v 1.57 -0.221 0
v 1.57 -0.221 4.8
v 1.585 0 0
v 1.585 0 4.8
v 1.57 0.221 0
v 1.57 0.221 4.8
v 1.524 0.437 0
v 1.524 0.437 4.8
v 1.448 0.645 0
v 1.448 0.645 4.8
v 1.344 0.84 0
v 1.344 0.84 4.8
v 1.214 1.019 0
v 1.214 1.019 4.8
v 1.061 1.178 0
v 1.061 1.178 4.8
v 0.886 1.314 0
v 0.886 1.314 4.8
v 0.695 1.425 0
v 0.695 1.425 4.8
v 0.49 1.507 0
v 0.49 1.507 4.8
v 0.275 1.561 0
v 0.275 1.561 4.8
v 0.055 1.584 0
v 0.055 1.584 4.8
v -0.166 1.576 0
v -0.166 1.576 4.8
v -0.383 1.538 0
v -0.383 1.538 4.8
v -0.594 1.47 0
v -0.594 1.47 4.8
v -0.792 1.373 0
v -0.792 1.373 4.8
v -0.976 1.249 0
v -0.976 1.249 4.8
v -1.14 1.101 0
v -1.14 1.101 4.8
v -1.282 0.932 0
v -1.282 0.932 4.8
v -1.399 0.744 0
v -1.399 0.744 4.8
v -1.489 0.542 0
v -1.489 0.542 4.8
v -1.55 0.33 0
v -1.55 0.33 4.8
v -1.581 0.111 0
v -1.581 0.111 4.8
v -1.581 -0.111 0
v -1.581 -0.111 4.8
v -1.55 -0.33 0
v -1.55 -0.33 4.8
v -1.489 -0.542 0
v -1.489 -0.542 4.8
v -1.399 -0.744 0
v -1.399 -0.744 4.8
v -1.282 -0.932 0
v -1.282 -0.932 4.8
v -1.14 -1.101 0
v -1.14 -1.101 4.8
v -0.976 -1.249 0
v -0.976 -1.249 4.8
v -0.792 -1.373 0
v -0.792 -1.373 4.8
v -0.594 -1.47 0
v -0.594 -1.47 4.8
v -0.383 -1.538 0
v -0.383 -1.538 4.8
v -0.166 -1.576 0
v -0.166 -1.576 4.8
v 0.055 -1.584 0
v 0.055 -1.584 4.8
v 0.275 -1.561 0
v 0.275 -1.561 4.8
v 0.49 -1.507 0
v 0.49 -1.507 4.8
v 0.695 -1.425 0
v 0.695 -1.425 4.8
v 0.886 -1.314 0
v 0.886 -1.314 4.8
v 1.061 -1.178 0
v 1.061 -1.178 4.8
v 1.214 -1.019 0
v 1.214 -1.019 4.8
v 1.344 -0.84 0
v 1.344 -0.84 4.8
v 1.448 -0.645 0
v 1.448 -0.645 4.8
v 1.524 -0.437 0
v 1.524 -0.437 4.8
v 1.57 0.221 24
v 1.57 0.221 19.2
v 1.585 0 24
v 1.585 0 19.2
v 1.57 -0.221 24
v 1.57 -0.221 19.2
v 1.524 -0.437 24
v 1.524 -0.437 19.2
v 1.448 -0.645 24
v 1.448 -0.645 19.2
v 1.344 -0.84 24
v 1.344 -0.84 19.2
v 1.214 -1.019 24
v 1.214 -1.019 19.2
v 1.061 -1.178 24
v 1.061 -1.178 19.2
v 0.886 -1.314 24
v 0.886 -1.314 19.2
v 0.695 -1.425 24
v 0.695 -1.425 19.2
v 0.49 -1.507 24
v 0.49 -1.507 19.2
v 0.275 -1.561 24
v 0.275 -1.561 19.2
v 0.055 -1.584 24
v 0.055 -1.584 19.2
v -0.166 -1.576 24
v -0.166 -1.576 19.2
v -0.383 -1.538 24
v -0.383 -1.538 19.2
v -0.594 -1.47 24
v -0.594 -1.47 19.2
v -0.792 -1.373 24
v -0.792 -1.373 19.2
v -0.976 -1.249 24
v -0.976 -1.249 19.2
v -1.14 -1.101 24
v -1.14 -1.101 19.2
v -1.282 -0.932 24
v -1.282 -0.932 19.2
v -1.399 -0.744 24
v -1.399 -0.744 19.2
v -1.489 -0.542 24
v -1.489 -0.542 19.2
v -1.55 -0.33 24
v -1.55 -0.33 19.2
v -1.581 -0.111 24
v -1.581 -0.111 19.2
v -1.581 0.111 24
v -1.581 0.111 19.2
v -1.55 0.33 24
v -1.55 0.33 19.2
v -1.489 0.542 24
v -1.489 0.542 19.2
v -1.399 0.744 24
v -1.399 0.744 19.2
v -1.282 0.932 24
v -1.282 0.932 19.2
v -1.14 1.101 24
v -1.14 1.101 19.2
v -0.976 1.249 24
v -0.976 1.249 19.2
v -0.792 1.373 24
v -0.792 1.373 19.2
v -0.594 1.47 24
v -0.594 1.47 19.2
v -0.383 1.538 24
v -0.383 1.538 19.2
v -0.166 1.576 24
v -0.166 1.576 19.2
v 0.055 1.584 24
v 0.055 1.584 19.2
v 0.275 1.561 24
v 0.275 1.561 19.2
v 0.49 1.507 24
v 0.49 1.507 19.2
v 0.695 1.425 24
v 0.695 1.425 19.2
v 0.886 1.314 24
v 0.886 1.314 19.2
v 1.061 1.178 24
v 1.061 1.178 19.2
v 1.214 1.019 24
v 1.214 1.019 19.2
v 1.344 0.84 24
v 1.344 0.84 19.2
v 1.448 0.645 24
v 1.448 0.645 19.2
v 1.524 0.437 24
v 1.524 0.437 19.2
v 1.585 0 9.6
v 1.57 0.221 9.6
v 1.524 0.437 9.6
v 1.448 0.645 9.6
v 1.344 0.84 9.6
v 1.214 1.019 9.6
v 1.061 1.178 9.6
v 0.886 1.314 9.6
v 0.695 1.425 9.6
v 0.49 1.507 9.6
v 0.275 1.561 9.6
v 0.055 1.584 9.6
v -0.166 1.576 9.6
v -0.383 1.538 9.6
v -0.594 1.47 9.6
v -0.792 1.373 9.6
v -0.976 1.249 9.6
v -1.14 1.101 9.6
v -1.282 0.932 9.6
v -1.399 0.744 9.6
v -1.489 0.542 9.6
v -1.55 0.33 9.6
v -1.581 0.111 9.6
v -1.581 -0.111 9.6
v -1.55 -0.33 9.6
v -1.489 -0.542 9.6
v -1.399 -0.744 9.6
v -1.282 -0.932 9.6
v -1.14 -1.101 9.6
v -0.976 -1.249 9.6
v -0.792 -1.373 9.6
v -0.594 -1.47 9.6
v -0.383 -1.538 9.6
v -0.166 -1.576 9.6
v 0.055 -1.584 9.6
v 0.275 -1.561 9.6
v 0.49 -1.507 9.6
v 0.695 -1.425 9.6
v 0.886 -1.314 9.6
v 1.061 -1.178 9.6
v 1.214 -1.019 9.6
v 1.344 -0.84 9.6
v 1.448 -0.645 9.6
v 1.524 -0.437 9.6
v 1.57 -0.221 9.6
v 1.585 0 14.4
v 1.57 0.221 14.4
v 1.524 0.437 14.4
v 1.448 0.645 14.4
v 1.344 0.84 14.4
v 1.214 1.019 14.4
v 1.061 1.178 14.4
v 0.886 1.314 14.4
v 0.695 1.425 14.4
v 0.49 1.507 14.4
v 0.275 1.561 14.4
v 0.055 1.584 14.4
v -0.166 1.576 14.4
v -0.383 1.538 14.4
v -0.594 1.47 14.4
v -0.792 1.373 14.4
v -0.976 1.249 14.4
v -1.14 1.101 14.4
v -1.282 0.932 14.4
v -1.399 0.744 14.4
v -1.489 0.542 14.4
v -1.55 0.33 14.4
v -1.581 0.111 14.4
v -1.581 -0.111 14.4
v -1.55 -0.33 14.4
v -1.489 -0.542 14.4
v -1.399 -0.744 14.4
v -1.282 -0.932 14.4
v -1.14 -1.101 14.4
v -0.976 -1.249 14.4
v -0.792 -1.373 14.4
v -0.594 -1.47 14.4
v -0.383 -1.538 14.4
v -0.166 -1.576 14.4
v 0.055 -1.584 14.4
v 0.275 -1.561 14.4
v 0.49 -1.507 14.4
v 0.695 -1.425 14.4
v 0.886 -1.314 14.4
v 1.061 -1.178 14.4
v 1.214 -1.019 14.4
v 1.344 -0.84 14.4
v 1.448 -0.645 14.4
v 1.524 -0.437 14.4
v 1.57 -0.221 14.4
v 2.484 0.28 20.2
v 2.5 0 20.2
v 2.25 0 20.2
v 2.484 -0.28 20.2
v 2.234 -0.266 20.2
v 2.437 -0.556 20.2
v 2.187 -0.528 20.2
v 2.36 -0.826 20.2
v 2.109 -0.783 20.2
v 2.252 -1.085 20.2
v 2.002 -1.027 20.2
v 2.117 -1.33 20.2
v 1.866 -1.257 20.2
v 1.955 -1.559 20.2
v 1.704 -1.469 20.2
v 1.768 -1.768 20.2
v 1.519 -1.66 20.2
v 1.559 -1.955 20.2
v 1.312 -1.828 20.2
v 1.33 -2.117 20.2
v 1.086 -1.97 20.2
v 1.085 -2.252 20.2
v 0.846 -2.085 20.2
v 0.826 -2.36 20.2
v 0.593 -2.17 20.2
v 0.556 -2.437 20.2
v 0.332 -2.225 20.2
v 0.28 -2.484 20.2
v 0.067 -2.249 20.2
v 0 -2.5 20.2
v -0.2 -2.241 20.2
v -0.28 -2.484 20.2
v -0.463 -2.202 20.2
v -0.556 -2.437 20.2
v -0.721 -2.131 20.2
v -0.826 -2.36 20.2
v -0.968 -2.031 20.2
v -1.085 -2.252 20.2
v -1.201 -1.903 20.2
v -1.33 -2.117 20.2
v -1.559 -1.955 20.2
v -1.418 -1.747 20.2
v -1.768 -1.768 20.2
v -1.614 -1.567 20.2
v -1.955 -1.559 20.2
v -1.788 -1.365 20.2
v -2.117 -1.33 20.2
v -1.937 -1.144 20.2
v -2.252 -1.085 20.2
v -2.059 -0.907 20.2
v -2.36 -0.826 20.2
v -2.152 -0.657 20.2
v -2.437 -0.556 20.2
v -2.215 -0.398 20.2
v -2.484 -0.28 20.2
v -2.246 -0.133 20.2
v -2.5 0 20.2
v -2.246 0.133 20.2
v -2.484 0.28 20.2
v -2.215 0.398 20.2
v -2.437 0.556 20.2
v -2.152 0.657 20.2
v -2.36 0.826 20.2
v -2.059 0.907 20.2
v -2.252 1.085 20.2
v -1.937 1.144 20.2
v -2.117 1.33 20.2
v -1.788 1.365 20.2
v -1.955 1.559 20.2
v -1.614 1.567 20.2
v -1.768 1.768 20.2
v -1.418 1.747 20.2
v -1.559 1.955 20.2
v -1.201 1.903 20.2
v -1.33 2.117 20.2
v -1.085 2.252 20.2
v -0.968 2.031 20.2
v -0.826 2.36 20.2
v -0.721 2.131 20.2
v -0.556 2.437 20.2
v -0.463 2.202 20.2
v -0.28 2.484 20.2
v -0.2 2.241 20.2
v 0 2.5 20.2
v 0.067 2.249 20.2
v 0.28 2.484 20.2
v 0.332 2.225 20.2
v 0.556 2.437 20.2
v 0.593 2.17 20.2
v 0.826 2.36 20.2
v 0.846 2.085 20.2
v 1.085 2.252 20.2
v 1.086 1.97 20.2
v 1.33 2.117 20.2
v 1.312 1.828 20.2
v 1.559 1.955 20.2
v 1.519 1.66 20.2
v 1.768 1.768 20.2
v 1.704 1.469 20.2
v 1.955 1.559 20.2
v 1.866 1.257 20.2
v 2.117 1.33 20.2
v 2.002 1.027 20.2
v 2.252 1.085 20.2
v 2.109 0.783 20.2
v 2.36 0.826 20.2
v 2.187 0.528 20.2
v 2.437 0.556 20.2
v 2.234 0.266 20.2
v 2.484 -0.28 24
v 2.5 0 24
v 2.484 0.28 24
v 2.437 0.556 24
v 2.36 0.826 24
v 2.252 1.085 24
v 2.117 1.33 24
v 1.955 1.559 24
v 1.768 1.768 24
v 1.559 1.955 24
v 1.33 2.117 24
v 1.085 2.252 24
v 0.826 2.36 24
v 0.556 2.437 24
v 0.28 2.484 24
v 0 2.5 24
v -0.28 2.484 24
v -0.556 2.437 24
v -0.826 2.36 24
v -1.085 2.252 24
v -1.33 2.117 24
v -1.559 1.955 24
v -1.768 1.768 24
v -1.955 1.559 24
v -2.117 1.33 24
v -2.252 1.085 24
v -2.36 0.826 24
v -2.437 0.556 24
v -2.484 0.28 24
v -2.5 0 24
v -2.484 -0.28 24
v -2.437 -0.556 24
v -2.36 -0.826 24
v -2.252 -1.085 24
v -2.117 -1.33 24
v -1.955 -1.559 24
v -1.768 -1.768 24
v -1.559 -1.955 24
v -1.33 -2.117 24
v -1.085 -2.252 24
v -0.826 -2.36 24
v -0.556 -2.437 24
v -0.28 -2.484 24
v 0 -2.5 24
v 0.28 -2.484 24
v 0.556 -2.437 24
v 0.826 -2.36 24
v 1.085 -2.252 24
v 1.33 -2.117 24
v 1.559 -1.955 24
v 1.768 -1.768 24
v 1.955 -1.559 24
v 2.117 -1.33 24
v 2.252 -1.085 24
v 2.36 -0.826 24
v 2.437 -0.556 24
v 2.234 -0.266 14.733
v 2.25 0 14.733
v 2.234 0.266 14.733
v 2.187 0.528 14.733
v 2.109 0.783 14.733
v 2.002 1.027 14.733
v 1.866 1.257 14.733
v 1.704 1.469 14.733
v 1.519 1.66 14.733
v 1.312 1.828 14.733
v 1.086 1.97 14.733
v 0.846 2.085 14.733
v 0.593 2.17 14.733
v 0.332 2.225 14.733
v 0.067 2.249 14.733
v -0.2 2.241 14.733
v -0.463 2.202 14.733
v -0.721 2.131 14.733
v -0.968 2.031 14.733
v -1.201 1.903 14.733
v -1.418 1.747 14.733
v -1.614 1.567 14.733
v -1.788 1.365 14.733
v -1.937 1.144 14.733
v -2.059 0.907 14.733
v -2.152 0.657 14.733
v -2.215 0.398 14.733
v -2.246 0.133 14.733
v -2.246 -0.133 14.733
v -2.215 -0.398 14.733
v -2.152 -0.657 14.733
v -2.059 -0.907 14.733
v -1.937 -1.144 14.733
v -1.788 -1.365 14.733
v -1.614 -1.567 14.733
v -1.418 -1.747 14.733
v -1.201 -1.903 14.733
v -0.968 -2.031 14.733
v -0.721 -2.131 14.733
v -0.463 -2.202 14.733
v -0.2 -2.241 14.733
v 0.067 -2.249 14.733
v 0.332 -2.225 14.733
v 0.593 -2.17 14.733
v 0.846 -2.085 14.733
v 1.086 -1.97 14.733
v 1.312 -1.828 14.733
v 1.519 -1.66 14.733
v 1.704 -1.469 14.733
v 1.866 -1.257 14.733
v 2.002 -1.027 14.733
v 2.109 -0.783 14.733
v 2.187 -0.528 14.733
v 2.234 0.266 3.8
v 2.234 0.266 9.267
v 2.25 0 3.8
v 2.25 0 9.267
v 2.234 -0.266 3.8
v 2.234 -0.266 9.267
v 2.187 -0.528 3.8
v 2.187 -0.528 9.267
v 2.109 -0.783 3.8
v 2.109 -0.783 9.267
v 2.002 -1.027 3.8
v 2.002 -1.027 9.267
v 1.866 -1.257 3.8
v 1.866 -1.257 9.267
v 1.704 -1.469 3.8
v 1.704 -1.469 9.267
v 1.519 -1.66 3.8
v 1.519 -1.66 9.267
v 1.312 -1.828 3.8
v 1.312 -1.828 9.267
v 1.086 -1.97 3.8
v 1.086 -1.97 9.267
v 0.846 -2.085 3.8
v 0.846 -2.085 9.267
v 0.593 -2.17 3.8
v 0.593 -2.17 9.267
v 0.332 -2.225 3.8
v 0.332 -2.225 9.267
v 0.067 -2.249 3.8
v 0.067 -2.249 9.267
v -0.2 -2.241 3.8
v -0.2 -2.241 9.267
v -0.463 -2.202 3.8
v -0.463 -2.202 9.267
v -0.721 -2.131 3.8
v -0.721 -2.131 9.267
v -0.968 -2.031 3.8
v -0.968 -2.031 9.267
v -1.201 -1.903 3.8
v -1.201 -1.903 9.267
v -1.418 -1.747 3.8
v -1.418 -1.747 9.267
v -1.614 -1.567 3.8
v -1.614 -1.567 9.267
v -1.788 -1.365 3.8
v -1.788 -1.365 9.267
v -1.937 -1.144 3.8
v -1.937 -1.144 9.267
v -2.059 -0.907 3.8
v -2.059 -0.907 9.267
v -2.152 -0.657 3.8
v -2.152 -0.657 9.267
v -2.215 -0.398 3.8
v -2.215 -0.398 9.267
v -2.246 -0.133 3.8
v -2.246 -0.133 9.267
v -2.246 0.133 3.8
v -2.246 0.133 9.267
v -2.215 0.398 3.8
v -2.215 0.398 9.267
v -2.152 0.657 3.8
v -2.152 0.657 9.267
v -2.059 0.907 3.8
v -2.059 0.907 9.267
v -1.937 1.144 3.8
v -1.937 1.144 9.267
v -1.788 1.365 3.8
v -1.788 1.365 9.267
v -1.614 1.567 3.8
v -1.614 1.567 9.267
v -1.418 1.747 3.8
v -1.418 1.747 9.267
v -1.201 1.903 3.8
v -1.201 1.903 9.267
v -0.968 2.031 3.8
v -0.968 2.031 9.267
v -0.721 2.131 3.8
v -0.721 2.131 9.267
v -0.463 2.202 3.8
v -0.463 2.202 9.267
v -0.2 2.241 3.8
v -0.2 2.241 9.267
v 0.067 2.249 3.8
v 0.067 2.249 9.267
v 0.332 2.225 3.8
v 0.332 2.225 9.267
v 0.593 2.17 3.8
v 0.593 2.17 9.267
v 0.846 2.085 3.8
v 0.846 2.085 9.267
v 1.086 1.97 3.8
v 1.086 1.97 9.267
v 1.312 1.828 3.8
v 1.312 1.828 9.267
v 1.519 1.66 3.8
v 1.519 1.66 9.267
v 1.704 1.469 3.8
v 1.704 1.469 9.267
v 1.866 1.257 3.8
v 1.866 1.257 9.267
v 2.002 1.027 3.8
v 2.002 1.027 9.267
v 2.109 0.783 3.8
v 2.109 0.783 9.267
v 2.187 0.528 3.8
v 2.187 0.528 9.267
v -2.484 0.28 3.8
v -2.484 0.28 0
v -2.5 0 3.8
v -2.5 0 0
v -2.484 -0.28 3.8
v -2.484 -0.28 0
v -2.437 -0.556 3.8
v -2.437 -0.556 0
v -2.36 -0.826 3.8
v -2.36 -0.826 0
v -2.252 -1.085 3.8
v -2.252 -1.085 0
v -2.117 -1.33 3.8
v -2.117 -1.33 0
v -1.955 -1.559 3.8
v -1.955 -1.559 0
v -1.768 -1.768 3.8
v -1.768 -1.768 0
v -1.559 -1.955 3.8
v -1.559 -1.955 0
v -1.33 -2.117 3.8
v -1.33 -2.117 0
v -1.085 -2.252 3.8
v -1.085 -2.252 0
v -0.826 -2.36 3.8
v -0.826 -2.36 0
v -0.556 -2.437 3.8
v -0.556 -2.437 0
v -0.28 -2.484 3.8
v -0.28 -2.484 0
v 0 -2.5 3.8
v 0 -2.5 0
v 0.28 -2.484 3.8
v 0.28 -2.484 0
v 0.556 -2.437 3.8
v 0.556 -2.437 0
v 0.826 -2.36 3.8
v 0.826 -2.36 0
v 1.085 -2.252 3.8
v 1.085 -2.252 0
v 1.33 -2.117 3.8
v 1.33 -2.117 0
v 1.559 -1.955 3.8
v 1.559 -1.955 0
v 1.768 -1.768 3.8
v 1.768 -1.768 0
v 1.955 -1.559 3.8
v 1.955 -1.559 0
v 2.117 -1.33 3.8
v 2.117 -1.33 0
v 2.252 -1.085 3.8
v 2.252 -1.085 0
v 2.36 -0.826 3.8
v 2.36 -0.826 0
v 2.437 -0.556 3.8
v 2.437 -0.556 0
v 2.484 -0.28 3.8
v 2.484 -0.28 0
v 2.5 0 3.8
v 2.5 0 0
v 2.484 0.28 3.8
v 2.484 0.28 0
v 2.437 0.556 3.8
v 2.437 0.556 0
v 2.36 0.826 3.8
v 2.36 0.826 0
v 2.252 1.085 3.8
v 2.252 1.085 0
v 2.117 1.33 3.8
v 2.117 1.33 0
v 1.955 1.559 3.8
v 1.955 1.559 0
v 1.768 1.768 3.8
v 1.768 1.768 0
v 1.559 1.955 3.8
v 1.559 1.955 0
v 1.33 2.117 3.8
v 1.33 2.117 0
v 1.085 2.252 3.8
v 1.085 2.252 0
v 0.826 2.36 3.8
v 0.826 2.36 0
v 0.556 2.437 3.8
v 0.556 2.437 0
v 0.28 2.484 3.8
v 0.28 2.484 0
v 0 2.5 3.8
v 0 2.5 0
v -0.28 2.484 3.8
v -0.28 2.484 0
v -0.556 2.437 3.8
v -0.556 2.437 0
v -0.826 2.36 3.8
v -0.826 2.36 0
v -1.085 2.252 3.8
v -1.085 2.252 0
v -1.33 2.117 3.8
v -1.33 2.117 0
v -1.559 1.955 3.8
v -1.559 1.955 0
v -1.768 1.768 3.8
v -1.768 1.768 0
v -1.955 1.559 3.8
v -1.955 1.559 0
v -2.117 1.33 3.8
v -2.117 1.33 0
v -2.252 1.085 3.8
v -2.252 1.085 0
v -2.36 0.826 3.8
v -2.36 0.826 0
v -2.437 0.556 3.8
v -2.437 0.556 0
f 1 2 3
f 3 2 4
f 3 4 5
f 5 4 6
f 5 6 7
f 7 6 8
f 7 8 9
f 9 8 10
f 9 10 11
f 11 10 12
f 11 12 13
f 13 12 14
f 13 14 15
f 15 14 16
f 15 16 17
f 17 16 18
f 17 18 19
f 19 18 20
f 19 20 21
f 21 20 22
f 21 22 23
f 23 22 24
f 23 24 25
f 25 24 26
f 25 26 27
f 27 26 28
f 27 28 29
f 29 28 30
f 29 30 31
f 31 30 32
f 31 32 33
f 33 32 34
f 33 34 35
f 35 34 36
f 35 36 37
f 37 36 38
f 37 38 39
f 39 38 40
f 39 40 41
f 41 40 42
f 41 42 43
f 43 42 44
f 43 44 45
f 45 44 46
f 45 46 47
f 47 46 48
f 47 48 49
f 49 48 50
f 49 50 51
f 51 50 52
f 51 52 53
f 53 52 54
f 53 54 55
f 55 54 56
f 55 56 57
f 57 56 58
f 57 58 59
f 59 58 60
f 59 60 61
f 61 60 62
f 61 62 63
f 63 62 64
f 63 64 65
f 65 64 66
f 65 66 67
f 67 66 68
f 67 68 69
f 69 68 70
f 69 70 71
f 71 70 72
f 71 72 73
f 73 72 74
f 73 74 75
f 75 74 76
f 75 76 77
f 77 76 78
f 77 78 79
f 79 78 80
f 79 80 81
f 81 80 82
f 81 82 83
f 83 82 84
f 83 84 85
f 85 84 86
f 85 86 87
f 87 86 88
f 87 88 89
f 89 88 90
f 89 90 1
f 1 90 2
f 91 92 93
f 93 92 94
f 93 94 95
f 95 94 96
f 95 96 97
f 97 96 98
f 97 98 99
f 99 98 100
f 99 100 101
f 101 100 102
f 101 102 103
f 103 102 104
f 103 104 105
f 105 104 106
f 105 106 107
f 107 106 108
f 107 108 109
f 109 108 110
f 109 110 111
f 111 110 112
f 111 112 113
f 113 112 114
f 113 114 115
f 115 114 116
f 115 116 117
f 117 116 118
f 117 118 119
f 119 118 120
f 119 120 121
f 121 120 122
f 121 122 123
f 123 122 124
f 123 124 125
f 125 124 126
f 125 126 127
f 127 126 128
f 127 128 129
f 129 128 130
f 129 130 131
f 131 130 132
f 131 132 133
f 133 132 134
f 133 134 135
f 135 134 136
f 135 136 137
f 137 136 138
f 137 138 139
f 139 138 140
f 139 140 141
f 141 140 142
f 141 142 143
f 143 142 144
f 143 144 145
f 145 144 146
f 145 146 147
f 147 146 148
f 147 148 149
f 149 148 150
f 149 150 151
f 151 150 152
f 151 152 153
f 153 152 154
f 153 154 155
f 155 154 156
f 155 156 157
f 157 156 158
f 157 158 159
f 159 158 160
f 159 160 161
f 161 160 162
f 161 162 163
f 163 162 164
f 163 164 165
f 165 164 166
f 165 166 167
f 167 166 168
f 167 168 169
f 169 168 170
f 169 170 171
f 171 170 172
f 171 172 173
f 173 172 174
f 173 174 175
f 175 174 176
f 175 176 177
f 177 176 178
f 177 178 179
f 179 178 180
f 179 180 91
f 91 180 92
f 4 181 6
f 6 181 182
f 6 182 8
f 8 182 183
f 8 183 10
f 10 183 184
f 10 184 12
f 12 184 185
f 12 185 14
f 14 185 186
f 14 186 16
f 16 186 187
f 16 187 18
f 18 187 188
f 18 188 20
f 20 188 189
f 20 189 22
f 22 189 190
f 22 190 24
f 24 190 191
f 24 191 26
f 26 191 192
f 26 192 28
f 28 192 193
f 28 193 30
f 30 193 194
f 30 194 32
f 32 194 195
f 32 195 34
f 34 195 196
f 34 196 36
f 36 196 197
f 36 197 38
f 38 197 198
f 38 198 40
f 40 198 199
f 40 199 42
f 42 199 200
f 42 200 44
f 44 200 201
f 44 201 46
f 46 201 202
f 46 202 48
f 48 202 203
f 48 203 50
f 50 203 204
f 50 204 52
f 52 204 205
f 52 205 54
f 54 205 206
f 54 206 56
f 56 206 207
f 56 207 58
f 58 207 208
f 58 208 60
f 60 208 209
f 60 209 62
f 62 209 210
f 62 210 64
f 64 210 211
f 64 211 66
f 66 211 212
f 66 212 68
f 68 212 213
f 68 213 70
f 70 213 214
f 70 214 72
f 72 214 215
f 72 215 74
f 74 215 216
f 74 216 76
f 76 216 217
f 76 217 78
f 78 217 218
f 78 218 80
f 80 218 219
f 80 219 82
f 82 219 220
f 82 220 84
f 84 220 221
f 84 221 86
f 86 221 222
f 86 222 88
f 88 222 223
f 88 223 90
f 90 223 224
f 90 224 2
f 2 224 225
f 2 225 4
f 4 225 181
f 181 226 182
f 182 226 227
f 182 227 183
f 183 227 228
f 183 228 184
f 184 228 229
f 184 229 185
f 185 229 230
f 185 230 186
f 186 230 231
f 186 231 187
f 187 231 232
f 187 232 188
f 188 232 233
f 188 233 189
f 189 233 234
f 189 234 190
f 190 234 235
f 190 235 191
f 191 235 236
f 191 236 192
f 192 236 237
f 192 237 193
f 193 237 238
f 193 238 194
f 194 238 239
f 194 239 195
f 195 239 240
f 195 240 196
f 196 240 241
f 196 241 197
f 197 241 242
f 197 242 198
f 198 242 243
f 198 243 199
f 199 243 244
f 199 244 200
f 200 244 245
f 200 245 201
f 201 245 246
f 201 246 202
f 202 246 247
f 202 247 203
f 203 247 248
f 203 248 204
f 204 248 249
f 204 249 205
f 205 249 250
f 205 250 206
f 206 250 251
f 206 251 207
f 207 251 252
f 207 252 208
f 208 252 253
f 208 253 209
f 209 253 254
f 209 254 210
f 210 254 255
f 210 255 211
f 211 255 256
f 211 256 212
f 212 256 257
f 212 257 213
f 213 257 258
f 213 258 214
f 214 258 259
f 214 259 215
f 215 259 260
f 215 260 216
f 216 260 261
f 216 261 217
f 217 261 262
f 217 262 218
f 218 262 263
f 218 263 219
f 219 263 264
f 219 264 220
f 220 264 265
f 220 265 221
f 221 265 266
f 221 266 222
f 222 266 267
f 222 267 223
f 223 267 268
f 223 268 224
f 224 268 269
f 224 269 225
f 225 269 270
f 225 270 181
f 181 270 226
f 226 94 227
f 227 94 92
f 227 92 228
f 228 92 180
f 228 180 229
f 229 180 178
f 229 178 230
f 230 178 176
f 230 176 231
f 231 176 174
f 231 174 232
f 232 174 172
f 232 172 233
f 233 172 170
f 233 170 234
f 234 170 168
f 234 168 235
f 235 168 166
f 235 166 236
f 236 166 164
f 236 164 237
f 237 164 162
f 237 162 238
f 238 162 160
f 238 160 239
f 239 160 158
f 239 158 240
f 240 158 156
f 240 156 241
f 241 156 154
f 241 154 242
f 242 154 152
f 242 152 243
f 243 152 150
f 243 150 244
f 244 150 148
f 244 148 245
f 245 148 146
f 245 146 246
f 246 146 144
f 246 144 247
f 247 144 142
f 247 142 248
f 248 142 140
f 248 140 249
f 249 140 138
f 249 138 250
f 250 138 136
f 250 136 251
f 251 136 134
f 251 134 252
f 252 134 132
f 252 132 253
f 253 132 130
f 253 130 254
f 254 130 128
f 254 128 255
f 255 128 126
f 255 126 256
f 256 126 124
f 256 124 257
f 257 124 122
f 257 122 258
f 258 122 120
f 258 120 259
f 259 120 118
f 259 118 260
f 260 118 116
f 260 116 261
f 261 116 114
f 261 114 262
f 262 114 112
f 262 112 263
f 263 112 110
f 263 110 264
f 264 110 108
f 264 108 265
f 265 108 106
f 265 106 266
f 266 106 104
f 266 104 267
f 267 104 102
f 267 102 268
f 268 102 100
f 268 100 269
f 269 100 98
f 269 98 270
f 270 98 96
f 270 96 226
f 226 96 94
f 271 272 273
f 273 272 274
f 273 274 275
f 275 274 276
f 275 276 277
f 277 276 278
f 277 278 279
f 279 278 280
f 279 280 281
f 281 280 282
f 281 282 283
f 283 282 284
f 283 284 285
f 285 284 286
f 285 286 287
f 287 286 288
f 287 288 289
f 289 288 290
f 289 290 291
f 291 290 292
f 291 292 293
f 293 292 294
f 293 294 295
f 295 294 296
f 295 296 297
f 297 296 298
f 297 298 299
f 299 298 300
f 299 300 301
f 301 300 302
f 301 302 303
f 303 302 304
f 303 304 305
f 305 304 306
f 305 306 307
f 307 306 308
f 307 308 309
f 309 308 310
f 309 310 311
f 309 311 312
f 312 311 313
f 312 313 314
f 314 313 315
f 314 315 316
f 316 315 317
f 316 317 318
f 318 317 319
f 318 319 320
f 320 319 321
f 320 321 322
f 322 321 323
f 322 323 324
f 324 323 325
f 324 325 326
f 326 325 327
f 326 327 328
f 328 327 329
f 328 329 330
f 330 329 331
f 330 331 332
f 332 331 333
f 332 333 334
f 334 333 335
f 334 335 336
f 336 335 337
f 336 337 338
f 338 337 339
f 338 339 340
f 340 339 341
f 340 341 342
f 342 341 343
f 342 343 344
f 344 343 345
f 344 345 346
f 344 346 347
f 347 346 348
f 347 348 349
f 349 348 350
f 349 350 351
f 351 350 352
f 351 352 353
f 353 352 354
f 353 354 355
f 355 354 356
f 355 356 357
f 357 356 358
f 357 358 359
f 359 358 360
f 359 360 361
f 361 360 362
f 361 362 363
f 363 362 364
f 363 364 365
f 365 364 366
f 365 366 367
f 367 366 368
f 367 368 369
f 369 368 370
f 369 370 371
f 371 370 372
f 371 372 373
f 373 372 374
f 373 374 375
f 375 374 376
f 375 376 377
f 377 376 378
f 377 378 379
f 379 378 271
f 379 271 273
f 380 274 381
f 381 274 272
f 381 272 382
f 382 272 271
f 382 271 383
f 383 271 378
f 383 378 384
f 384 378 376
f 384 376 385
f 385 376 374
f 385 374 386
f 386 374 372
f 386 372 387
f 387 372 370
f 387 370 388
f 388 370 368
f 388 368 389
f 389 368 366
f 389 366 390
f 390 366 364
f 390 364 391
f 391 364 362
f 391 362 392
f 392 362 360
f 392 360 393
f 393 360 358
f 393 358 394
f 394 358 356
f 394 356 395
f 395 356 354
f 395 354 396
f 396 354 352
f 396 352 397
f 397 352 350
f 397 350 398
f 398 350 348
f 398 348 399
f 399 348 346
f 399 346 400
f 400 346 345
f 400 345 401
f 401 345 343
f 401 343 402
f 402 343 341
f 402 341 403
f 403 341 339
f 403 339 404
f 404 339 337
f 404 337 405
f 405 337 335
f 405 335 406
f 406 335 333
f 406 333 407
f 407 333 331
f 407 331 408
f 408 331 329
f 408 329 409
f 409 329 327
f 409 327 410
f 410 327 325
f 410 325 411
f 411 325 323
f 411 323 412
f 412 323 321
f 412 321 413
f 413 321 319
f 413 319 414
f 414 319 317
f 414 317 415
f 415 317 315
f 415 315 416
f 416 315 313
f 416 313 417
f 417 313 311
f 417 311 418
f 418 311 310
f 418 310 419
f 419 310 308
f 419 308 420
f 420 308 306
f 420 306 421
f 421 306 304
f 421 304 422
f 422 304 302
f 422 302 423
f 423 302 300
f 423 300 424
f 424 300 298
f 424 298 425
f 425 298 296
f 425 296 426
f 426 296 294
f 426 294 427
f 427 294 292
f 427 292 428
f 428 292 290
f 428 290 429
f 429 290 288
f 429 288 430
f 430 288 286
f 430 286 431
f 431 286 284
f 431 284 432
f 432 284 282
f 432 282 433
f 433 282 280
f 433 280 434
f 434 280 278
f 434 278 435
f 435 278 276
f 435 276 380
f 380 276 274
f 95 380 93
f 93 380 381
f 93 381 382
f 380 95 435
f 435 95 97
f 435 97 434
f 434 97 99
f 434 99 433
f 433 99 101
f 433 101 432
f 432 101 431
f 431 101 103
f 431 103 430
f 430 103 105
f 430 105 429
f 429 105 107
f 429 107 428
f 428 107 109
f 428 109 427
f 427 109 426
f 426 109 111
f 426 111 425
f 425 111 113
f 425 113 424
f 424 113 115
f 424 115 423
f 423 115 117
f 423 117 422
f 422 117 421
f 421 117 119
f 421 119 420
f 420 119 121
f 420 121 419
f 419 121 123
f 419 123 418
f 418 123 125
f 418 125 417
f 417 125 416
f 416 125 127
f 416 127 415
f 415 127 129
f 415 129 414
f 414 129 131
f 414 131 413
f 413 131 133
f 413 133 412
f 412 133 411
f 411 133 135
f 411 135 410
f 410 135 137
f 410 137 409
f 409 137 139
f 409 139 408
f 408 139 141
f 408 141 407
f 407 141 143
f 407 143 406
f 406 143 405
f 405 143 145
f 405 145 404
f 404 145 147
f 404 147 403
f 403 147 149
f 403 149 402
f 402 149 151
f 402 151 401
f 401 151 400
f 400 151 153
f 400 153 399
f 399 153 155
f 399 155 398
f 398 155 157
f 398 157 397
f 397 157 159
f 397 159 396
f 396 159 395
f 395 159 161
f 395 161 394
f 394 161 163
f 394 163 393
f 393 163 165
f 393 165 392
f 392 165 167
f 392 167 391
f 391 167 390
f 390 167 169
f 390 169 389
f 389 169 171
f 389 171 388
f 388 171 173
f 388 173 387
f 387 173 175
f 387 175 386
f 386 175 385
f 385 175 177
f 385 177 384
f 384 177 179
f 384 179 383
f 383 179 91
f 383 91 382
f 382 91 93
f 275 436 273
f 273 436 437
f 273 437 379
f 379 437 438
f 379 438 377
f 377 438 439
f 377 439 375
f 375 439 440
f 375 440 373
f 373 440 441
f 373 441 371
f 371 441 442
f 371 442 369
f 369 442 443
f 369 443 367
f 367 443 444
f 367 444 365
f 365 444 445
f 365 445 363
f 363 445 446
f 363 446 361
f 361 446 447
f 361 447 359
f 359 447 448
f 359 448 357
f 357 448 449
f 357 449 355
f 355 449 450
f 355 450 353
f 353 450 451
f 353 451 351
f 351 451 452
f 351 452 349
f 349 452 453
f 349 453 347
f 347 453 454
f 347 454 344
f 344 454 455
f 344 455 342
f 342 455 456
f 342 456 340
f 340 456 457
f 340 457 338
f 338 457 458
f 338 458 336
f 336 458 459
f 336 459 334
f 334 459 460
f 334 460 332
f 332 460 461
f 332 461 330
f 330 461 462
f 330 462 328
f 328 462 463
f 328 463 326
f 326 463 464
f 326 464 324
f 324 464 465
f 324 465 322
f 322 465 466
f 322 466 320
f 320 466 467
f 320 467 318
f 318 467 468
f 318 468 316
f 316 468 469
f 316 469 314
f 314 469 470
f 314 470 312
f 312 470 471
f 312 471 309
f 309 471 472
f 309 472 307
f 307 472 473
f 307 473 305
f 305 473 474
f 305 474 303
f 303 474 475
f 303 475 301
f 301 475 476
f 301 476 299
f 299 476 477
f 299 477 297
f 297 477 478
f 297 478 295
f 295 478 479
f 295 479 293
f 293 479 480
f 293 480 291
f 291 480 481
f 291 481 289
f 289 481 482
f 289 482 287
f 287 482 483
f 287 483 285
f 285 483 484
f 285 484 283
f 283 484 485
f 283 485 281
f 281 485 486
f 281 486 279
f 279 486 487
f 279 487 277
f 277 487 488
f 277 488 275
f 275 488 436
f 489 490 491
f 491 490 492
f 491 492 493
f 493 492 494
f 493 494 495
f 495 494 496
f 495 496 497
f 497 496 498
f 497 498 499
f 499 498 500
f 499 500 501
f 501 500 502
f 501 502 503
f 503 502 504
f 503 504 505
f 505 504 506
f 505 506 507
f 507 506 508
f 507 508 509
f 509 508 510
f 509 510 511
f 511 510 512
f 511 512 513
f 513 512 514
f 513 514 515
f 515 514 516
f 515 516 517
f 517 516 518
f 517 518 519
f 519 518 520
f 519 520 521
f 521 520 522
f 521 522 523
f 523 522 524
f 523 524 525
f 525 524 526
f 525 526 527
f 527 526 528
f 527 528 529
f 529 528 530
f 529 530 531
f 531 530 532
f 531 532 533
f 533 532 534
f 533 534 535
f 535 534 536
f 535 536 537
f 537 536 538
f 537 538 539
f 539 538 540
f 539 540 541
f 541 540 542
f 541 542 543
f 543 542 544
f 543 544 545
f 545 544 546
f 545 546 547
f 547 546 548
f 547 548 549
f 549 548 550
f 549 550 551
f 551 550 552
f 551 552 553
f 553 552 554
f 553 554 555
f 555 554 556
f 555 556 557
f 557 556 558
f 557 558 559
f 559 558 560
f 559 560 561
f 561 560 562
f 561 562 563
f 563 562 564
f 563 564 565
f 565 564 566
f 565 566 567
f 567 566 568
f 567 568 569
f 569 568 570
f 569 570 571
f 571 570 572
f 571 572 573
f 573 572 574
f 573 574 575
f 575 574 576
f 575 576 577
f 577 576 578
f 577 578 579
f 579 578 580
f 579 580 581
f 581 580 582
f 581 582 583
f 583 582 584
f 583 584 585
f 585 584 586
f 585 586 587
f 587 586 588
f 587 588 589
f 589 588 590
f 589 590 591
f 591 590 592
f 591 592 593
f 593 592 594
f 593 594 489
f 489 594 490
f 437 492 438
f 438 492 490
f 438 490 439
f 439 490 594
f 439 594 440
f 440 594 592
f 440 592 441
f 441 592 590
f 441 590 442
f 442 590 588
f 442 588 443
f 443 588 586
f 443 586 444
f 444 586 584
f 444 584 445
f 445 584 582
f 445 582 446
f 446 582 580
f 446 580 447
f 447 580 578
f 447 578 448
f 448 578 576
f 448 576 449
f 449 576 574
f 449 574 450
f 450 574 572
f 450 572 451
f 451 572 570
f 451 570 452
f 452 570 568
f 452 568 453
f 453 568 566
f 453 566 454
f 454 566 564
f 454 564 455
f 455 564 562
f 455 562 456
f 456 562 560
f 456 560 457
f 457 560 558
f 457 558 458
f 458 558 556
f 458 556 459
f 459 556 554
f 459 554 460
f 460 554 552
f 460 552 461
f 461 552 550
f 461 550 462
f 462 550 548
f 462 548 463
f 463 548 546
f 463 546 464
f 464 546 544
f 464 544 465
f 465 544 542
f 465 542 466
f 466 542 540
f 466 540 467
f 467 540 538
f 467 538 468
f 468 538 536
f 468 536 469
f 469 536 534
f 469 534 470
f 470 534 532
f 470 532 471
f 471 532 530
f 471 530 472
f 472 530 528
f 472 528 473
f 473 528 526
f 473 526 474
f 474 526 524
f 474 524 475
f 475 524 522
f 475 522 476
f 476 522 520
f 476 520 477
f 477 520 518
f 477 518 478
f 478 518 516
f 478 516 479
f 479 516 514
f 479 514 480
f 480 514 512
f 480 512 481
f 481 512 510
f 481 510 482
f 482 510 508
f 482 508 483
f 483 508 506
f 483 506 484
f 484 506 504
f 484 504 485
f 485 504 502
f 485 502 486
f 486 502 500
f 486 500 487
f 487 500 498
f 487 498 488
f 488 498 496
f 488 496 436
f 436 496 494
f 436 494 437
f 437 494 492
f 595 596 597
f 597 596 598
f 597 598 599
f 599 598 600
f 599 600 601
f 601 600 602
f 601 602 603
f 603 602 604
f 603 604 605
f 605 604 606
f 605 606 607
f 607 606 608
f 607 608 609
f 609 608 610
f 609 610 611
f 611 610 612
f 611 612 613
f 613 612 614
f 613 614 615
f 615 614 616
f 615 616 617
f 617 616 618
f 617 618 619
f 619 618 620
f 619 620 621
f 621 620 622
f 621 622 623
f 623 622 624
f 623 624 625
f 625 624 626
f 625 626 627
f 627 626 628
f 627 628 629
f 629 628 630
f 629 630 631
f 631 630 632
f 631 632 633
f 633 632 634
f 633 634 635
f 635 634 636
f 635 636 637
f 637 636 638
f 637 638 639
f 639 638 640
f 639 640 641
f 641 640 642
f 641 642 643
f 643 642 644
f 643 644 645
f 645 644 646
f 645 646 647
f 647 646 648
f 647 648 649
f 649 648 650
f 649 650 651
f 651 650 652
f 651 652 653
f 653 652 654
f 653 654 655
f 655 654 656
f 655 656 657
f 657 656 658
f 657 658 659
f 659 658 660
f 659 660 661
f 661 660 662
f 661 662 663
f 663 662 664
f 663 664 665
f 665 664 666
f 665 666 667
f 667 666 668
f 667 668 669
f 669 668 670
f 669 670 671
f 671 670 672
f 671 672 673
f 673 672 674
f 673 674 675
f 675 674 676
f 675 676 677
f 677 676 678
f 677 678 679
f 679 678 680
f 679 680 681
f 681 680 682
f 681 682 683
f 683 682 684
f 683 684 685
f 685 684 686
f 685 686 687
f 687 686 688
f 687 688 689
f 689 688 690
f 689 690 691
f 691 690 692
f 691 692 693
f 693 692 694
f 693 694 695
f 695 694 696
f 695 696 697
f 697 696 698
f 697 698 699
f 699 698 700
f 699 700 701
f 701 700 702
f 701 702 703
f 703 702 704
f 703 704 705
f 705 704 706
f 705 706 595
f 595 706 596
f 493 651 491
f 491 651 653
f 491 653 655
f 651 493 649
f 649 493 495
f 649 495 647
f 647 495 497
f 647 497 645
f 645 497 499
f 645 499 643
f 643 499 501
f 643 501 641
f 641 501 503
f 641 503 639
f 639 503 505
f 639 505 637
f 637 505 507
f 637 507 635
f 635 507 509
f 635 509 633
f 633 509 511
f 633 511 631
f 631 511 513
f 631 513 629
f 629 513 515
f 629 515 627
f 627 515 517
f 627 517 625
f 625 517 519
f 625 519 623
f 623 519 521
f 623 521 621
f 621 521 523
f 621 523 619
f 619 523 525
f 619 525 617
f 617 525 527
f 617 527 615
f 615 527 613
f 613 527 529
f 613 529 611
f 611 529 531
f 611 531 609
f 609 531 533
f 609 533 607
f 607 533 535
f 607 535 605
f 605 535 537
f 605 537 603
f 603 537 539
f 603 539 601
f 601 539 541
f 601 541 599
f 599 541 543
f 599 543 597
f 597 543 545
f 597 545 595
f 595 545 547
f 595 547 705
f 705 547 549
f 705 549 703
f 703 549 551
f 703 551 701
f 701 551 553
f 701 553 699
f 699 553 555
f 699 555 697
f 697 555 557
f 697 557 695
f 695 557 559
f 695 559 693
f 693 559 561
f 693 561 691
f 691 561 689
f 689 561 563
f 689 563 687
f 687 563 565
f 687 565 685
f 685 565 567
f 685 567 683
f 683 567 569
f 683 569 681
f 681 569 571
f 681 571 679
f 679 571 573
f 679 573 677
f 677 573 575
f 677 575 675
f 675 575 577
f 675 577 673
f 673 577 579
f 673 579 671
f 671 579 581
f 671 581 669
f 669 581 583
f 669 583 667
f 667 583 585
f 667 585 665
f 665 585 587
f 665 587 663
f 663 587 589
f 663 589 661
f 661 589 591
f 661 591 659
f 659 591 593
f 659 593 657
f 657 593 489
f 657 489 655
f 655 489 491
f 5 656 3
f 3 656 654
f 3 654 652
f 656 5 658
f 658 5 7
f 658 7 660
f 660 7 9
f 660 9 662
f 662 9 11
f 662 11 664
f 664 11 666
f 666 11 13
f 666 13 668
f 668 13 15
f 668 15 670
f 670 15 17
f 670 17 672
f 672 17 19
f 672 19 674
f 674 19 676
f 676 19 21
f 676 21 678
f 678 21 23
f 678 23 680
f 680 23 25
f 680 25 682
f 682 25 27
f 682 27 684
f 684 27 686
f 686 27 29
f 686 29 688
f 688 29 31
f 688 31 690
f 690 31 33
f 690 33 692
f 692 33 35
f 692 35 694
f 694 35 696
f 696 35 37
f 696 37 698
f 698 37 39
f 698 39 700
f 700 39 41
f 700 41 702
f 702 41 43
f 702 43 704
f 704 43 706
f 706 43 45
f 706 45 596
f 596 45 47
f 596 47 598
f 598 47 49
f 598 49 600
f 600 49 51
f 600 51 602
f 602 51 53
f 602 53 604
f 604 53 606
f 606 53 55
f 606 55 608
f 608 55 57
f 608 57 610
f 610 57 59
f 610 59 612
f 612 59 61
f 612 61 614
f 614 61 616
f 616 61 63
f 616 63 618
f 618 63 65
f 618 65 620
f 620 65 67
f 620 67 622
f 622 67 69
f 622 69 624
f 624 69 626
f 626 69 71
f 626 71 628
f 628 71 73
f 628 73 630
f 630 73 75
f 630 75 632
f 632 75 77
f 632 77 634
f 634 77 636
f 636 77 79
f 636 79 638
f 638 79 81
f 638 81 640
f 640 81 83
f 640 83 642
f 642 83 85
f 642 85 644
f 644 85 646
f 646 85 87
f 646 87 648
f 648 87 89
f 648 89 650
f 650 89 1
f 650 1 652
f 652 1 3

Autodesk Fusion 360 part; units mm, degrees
sketch "スケッチ17" plane through (0, 0, 0) normal (0, 0, 1) x (1, 0, 0)
  circle A0 centre (0, 0) radius 2.5
  dimension "d50" = 5
extrude "押し出し14" add sketch "スケッチ17" along normal blind 3.8
sketch "スケッチ18" plane through (0, 0, 3.8) normal (0, 0, 1) x (-1, 0, 0)
  circle A0 centre (0, 0) radius 2.5
  circle A1 centre (0, 0) radius 2.25
  dimension "d53" = 4.5
extrude "押し出し15" add sketch "スケッチ18" along normal blind 16.4 contours A1
sketch "スケッチ19" plane through (0, 0, 20.2) normal (0, 0, 1) x (-1, 0, 0)
  circle A0 centre (0, 0) radius 2.25
  circle A1 centre (0, 0) radius 2.5
  dimension "d56" = 5
extrude "押し出し16" add sketch "スケッチ19" along normal blind 3.8 contours A0 | A1
sketch "スケッチ20" plane through (0, 0, 24) normal (0, 0, 1) x (-1, 0, 0)
  circle A0 centre (0, 0) radius 2.5
  circle A1 centre (0, 0) radius 1.585
  dimension "d59" = 3.17
extrude "押し出し17" cut sketch "スケッチ20" against normal blind 24 contours A1
